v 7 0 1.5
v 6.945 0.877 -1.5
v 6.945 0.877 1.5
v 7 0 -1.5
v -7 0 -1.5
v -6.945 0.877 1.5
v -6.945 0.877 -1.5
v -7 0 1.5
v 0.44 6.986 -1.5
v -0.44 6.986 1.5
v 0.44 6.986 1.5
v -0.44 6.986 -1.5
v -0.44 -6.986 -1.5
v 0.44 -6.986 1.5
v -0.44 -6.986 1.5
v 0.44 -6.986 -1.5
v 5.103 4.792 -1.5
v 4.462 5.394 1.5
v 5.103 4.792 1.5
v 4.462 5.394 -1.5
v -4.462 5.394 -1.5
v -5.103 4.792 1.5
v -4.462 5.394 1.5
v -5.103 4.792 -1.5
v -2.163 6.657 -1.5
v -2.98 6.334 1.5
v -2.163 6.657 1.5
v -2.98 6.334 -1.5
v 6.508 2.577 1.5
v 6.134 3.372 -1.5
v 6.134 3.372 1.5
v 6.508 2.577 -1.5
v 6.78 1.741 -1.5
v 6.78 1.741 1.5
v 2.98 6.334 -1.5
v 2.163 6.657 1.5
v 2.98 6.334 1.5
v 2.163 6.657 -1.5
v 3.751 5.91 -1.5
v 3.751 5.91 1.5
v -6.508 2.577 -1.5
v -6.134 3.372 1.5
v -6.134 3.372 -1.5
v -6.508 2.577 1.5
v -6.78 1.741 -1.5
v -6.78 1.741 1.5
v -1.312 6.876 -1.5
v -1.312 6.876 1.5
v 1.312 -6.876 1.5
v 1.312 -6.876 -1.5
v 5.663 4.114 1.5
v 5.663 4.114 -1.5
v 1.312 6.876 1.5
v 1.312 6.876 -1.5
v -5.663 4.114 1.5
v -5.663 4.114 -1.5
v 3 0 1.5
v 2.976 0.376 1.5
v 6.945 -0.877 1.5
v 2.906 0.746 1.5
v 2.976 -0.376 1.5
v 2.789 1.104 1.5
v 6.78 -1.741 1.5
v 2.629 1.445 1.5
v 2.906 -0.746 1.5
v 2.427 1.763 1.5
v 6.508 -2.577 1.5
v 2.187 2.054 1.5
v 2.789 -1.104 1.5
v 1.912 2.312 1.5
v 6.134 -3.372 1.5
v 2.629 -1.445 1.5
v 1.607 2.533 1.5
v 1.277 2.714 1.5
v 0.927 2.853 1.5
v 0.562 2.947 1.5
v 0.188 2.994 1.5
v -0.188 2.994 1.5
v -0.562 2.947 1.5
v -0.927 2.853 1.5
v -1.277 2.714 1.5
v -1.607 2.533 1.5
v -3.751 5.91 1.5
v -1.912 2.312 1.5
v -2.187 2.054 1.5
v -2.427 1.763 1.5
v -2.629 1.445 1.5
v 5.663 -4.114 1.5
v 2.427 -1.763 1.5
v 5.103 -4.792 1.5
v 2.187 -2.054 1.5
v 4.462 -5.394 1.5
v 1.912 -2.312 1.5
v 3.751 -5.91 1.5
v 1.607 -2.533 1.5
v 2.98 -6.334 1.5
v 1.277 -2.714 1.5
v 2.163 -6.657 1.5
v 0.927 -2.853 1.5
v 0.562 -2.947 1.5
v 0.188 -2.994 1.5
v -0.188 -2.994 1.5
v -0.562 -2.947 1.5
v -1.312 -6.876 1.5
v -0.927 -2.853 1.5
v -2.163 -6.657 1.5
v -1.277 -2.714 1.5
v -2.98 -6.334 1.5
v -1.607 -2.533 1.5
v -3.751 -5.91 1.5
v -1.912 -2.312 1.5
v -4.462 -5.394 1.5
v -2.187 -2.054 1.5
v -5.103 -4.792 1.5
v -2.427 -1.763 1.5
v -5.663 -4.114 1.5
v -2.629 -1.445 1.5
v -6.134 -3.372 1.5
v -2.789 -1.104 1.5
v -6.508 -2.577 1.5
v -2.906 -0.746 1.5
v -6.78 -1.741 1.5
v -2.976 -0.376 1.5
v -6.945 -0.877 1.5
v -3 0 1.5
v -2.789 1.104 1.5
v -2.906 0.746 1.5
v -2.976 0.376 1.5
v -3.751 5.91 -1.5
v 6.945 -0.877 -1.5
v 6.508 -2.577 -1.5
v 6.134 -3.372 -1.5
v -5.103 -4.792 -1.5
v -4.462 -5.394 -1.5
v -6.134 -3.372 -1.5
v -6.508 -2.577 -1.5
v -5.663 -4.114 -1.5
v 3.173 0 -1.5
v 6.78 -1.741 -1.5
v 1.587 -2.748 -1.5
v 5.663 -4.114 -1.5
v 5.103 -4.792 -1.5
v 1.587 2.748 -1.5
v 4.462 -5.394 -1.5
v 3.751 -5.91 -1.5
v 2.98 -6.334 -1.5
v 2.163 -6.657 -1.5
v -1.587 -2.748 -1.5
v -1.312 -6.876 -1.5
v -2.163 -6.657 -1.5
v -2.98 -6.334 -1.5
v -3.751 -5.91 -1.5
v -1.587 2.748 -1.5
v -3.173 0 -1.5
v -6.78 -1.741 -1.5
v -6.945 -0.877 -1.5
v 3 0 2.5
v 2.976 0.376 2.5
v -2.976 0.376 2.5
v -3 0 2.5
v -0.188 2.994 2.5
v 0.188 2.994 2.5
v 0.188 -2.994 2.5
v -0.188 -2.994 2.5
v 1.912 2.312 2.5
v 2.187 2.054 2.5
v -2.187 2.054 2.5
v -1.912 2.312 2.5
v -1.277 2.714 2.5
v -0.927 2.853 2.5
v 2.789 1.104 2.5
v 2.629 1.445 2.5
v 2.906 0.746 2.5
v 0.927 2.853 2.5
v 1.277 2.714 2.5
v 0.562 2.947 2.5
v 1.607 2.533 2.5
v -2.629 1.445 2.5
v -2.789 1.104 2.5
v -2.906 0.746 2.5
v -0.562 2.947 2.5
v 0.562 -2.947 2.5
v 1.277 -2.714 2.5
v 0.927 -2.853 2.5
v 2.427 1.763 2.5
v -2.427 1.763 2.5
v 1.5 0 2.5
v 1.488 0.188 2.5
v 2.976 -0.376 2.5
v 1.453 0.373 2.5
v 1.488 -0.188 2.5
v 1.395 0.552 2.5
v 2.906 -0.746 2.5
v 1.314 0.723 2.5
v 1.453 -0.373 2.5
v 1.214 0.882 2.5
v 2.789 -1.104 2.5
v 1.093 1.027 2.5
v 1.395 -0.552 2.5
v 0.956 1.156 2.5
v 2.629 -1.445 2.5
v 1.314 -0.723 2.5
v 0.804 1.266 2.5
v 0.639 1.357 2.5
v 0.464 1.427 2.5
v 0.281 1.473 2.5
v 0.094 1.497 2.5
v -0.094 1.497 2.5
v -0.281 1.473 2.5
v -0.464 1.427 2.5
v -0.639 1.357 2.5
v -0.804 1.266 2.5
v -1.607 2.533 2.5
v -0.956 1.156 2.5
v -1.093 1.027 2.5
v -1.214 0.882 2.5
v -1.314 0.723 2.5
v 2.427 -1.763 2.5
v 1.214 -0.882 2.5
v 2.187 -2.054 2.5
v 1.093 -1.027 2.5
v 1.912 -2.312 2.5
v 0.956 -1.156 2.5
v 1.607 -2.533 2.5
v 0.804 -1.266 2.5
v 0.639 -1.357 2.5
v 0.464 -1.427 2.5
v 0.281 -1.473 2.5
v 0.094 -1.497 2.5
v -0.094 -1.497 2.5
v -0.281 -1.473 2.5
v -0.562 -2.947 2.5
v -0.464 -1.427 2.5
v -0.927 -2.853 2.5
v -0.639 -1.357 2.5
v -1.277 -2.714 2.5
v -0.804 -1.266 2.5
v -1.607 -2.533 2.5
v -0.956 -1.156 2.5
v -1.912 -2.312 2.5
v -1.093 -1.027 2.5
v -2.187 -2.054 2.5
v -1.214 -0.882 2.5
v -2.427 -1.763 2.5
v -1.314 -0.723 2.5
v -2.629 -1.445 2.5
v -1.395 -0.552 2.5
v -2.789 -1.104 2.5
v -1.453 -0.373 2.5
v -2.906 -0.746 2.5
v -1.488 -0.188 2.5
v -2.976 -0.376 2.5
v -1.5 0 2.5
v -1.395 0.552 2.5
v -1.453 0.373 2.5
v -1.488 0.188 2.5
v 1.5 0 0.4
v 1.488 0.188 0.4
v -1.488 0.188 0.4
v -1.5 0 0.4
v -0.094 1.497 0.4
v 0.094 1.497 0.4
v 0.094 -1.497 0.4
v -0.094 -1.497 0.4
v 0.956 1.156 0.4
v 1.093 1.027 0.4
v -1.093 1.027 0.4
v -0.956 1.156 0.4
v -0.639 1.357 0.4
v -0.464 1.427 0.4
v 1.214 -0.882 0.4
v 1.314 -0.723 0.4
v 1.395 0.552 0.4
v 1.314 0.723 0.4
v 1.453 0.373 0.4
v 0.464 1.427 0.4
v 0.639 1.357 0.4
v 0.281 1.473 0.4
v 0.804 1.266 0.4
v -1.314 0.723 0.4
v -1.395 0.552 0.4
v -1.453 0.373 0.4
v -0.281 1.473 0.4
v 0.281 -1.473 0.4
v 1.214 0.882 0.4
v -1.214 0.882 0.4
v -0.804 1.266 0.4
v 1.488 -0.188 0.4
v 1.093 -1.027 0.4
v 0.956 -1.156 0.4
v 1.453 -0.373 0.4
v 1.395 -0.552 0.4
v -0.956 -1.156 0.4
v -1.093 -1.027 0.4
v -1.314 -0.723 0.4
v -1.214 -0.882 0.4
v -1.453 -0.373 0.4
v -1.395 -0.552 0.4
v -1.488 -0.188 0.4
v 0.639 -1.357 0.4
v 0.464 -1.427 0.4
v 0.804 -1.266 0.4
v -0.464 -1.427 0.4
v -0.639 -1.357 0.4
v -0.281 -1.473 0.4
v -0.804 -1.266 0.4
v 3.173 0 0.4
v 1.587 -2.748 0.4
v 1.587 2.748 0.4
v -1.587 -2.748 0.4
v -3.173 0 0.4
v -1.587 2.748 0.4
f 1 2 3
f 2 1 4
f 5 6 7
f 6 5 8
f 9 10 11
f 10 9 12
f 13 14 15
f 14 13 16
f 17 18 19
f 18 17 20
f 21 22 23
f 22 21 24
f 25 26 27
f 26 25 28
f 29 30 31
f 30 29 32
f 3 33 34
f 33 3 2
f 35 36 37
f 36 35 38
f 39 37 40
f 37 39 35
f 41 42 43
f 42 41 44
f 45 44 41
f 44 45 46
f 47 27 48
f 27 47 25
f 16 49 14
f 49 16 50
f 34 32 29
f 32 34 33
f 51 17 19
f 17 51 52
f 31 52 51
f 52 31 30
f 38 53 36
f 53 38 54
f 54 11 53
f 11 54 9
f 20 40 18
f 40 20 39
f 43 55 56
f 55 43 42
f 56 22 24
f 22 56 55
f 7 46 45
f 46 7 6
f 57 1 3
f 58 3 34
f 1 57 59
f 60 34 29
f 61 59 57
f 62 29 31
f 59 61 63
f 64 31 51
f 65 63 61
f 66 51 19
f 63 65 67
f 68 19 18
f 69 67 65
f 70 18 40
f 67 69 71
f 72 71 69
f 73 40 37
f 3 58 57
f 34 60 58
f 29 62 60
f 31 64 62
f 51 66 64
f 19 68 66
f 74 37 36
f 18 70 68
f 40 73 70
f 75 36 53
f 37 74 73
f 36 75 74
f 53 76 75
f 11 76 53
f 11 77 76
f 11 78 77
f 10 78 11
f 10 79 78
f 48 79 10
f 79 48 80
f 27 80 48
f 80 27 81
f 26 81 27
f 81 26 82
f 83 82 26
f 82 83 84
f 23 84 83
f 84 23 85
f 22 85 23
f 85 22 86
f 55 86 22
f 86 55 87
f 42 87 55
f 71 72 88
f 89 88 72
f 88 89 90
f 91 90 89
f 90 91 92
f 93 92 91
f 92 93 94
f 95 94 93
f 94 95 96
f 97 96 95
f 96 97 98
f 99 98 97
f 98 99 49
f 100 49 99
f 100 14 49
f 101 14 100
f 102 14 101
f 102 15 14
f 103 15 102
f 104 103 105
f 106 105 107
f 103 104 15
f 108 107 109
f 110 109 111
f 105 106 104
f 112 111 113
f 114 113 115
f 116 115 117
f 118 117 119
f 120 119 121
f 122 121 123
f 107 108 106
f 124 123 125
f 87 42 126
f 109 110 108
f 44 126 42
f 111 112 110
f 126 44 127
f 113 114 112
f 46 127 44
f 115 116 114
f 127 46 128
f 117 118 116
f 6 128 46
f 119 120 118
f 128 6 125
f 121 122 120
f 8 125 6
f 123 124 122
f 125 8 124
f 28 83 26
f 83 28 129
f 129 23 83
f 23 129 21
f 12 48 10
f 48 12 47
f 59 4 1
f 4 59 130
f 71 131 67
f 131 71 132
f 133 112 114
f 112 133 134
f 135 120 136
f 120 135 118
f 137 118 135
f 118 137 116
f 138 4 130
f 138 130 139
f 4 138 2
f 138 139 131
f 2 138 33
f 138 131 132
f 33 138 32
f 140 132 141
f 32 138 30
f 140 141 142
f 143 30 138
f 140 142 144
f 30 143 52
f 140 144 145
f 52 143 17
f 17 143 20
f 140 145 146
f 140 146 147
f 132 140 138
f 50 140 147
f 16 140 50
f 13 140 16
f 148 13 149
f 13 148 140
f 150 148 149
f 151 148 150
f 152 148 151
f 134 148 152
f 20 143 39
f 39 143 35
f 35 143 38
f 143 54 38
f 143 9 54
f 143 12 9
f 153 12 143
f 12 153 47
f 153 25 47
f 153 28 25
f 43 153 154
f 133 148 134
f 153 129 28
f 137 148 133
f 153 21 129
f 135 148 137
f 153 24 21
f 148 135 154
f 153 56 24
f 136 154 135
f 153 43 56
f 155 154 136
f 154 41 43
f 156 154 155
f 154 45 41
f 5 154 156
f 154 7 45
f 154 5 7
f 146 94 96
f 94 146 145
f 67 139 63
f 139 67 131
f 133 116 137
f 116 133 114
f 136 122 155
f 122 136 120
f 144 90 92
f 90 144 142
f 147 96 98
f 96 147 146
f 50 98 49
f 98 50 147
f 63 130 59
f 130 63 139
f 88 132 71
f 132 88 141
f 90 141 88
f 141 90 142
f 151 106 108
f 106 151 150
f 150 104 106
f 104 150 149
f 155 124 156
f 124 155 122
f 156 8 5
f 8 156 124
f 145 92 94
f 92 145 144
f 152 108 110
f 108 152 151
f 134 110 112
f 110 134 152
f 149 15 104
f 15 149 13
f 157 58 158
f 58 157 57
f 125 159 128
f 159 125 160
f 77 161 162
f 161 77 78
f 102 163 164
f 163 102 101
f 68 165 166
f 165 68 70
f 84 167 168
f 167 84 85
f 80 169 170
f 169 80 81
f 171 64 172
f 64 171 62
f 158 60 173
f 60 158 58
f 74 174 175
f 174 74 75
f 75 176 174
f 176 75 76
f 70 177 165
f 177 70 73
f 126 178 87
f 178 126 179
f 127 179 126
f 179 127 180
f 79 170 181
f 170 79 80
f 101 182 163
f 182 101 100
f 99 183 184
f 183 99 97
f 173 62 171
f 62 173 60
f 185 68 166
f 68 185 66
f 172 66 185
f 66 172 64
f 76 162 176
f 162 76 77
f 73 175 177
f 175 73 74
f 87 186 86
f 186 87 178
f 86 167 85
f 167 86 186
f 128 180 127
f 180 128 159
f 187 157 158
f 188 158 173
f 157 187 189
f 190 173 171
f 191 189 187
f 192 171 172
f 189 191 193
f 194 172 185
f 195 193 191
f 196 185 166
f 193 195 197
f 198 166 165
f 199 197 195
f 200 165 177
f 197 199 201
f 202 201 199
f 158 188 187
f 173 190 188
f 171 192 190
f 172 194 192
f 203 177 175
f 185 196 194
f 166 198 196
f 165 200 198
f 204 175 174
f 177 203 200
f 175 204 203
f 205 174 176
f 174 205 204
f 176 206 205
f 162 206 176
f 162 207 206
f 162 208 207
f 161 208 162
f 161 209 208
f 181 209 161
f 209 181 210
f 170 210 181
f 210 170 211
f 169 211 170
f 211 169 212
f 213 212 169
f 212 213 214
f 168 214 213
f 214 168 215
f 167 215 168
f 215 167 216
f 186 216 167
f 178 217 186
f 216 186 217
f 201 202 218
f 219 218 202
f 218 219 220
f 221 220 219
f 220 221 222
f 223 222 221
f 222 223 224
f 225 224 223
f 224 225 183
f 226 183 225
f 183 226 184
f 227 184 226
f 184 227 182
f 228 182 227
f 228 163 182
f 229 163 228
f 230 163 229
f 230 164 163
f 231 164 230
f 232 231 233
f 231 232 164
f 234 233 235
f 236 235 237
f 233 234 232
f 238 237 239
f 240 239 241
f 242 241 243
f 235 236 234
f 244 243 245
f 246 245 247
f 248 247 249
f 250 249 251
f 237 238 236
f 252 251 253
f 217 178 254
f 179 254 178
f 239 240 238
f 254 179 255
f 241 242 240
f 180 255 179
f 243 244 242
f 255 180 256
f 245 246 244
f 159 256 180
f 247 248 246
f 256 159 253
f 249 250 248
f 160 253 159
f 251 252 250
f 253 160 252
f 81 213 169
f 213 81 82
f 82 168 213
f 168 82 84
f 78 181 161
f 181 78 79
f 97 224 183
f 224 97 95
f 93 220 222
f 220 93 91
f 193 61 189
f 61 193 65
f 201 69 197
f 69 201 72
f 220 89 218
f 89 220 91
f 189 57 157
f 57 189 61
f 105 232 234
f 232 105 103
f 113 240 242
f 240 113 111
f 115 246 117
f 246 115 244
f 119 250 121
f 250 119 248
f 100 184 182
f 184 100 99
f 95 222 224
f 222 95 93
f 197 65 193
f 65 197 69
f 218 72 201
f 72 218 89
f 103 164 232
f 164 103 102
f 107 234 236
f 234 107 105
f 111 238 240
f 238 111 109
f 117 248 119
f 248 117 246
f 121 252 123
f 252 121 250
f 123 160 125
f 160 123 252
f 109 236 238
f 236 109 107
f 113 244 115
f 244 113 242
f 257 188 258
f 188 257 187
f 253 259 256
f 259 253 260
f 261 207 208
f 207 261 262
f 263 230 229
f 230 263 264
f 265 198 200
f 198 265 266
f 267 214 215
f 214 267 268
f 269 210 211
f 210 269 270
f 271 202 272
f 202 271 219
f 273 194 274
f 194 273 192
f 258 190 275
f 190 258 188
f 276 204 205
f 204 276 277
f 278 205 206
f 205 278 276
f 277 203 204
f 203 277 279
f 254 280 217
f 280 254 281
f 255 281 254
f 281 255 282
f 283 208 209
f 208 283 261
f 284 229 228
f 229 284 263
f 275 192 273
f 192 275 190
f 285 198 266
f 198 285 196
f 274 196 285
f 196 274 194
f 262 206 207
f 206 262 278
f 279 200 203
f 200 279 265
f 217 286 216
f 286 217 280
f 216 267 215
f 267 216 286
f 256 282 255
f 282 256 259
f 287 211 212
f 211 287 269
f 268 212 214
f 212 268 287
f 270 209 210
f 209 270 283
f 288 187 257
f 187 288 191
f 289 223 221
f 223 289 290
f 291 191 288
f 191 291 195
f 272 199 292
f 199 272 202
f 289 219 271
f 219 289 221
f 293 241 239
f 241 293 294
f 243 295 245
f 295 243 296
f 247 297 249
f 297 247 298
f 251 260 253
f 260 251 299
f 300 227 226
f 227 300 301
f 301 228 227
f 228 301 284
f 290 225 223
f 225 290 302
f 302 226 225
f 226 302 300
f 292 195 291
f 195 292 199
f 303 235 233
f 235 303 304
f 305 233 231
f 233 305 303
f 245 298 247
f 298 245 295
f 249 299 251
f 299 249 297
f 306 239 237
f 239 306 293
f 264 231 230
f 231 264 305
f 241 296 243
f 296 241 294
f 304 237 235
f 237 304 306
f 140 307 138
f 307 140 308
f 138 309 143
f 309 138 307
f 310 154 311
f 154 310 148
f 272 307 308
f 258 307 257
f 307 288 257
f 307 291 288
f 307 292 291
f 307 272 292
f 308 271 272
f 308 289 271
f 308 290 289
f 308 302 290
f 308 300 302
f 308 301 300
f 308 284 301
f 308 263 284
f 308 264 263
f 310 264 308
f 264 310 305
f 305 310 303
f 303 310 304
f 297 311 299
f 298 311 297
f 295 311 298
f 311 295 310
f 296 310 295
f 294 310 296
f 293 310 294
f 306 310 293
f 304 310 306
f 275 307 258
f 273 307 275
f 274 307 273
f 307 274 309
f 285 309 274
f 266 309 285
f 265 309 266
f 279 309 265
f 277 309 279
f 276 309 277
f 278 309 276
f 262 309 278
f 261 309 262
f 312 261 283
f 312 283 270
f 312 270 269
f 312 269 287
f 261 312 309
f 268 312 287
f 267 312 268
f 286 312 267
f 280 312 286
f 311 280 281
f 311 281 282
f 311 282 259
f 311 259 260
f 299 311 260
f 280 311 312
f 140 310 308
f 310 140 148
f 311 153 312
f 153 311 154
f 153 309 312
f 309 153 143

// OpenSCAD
$fn = 50;


difference() {
	union() {
		translate(v = [0, 0, -1.5000000000]) {
			rotate(a = [0, 0, 0]) {
				cylinder(h = 3, r = 7.0000000000);
			}
		}
		translate(v = [0, 0, -1.5000000000]) {
			rotate(a = [0, 0, 0]) {
				cylinder(h = 4, r = 3.0000000000);
			}
		}
	}
	union() {
		translate(v = [0, 0, -125.0000000000]) {
			rotate(a = [0, 0, 0]) {
				cylinder(h = 250, r = 1.5000000000);
			}
		}
		translate(v = [0, 0, -2.1000000000]) {
			rotate(a = [0, 0, 0]) {
				#translate(v = [0, 0, 0]) {
					rotate(a = [0, 0, 0]) {
						linear_extrude(height = 2.5000000000) {
							polygon(points = [[3.1735000000, 0.0000000000], [1.5867500000, 2.7483316189], [-1.5867500000, 2.7483316189], [-3.1735000000, 0.0000000000], [-1.5867500000, -2.7483316189], [1.5867500000, -2.7483316189]]);
						}
					}
				}
			}
		}
	}
}
